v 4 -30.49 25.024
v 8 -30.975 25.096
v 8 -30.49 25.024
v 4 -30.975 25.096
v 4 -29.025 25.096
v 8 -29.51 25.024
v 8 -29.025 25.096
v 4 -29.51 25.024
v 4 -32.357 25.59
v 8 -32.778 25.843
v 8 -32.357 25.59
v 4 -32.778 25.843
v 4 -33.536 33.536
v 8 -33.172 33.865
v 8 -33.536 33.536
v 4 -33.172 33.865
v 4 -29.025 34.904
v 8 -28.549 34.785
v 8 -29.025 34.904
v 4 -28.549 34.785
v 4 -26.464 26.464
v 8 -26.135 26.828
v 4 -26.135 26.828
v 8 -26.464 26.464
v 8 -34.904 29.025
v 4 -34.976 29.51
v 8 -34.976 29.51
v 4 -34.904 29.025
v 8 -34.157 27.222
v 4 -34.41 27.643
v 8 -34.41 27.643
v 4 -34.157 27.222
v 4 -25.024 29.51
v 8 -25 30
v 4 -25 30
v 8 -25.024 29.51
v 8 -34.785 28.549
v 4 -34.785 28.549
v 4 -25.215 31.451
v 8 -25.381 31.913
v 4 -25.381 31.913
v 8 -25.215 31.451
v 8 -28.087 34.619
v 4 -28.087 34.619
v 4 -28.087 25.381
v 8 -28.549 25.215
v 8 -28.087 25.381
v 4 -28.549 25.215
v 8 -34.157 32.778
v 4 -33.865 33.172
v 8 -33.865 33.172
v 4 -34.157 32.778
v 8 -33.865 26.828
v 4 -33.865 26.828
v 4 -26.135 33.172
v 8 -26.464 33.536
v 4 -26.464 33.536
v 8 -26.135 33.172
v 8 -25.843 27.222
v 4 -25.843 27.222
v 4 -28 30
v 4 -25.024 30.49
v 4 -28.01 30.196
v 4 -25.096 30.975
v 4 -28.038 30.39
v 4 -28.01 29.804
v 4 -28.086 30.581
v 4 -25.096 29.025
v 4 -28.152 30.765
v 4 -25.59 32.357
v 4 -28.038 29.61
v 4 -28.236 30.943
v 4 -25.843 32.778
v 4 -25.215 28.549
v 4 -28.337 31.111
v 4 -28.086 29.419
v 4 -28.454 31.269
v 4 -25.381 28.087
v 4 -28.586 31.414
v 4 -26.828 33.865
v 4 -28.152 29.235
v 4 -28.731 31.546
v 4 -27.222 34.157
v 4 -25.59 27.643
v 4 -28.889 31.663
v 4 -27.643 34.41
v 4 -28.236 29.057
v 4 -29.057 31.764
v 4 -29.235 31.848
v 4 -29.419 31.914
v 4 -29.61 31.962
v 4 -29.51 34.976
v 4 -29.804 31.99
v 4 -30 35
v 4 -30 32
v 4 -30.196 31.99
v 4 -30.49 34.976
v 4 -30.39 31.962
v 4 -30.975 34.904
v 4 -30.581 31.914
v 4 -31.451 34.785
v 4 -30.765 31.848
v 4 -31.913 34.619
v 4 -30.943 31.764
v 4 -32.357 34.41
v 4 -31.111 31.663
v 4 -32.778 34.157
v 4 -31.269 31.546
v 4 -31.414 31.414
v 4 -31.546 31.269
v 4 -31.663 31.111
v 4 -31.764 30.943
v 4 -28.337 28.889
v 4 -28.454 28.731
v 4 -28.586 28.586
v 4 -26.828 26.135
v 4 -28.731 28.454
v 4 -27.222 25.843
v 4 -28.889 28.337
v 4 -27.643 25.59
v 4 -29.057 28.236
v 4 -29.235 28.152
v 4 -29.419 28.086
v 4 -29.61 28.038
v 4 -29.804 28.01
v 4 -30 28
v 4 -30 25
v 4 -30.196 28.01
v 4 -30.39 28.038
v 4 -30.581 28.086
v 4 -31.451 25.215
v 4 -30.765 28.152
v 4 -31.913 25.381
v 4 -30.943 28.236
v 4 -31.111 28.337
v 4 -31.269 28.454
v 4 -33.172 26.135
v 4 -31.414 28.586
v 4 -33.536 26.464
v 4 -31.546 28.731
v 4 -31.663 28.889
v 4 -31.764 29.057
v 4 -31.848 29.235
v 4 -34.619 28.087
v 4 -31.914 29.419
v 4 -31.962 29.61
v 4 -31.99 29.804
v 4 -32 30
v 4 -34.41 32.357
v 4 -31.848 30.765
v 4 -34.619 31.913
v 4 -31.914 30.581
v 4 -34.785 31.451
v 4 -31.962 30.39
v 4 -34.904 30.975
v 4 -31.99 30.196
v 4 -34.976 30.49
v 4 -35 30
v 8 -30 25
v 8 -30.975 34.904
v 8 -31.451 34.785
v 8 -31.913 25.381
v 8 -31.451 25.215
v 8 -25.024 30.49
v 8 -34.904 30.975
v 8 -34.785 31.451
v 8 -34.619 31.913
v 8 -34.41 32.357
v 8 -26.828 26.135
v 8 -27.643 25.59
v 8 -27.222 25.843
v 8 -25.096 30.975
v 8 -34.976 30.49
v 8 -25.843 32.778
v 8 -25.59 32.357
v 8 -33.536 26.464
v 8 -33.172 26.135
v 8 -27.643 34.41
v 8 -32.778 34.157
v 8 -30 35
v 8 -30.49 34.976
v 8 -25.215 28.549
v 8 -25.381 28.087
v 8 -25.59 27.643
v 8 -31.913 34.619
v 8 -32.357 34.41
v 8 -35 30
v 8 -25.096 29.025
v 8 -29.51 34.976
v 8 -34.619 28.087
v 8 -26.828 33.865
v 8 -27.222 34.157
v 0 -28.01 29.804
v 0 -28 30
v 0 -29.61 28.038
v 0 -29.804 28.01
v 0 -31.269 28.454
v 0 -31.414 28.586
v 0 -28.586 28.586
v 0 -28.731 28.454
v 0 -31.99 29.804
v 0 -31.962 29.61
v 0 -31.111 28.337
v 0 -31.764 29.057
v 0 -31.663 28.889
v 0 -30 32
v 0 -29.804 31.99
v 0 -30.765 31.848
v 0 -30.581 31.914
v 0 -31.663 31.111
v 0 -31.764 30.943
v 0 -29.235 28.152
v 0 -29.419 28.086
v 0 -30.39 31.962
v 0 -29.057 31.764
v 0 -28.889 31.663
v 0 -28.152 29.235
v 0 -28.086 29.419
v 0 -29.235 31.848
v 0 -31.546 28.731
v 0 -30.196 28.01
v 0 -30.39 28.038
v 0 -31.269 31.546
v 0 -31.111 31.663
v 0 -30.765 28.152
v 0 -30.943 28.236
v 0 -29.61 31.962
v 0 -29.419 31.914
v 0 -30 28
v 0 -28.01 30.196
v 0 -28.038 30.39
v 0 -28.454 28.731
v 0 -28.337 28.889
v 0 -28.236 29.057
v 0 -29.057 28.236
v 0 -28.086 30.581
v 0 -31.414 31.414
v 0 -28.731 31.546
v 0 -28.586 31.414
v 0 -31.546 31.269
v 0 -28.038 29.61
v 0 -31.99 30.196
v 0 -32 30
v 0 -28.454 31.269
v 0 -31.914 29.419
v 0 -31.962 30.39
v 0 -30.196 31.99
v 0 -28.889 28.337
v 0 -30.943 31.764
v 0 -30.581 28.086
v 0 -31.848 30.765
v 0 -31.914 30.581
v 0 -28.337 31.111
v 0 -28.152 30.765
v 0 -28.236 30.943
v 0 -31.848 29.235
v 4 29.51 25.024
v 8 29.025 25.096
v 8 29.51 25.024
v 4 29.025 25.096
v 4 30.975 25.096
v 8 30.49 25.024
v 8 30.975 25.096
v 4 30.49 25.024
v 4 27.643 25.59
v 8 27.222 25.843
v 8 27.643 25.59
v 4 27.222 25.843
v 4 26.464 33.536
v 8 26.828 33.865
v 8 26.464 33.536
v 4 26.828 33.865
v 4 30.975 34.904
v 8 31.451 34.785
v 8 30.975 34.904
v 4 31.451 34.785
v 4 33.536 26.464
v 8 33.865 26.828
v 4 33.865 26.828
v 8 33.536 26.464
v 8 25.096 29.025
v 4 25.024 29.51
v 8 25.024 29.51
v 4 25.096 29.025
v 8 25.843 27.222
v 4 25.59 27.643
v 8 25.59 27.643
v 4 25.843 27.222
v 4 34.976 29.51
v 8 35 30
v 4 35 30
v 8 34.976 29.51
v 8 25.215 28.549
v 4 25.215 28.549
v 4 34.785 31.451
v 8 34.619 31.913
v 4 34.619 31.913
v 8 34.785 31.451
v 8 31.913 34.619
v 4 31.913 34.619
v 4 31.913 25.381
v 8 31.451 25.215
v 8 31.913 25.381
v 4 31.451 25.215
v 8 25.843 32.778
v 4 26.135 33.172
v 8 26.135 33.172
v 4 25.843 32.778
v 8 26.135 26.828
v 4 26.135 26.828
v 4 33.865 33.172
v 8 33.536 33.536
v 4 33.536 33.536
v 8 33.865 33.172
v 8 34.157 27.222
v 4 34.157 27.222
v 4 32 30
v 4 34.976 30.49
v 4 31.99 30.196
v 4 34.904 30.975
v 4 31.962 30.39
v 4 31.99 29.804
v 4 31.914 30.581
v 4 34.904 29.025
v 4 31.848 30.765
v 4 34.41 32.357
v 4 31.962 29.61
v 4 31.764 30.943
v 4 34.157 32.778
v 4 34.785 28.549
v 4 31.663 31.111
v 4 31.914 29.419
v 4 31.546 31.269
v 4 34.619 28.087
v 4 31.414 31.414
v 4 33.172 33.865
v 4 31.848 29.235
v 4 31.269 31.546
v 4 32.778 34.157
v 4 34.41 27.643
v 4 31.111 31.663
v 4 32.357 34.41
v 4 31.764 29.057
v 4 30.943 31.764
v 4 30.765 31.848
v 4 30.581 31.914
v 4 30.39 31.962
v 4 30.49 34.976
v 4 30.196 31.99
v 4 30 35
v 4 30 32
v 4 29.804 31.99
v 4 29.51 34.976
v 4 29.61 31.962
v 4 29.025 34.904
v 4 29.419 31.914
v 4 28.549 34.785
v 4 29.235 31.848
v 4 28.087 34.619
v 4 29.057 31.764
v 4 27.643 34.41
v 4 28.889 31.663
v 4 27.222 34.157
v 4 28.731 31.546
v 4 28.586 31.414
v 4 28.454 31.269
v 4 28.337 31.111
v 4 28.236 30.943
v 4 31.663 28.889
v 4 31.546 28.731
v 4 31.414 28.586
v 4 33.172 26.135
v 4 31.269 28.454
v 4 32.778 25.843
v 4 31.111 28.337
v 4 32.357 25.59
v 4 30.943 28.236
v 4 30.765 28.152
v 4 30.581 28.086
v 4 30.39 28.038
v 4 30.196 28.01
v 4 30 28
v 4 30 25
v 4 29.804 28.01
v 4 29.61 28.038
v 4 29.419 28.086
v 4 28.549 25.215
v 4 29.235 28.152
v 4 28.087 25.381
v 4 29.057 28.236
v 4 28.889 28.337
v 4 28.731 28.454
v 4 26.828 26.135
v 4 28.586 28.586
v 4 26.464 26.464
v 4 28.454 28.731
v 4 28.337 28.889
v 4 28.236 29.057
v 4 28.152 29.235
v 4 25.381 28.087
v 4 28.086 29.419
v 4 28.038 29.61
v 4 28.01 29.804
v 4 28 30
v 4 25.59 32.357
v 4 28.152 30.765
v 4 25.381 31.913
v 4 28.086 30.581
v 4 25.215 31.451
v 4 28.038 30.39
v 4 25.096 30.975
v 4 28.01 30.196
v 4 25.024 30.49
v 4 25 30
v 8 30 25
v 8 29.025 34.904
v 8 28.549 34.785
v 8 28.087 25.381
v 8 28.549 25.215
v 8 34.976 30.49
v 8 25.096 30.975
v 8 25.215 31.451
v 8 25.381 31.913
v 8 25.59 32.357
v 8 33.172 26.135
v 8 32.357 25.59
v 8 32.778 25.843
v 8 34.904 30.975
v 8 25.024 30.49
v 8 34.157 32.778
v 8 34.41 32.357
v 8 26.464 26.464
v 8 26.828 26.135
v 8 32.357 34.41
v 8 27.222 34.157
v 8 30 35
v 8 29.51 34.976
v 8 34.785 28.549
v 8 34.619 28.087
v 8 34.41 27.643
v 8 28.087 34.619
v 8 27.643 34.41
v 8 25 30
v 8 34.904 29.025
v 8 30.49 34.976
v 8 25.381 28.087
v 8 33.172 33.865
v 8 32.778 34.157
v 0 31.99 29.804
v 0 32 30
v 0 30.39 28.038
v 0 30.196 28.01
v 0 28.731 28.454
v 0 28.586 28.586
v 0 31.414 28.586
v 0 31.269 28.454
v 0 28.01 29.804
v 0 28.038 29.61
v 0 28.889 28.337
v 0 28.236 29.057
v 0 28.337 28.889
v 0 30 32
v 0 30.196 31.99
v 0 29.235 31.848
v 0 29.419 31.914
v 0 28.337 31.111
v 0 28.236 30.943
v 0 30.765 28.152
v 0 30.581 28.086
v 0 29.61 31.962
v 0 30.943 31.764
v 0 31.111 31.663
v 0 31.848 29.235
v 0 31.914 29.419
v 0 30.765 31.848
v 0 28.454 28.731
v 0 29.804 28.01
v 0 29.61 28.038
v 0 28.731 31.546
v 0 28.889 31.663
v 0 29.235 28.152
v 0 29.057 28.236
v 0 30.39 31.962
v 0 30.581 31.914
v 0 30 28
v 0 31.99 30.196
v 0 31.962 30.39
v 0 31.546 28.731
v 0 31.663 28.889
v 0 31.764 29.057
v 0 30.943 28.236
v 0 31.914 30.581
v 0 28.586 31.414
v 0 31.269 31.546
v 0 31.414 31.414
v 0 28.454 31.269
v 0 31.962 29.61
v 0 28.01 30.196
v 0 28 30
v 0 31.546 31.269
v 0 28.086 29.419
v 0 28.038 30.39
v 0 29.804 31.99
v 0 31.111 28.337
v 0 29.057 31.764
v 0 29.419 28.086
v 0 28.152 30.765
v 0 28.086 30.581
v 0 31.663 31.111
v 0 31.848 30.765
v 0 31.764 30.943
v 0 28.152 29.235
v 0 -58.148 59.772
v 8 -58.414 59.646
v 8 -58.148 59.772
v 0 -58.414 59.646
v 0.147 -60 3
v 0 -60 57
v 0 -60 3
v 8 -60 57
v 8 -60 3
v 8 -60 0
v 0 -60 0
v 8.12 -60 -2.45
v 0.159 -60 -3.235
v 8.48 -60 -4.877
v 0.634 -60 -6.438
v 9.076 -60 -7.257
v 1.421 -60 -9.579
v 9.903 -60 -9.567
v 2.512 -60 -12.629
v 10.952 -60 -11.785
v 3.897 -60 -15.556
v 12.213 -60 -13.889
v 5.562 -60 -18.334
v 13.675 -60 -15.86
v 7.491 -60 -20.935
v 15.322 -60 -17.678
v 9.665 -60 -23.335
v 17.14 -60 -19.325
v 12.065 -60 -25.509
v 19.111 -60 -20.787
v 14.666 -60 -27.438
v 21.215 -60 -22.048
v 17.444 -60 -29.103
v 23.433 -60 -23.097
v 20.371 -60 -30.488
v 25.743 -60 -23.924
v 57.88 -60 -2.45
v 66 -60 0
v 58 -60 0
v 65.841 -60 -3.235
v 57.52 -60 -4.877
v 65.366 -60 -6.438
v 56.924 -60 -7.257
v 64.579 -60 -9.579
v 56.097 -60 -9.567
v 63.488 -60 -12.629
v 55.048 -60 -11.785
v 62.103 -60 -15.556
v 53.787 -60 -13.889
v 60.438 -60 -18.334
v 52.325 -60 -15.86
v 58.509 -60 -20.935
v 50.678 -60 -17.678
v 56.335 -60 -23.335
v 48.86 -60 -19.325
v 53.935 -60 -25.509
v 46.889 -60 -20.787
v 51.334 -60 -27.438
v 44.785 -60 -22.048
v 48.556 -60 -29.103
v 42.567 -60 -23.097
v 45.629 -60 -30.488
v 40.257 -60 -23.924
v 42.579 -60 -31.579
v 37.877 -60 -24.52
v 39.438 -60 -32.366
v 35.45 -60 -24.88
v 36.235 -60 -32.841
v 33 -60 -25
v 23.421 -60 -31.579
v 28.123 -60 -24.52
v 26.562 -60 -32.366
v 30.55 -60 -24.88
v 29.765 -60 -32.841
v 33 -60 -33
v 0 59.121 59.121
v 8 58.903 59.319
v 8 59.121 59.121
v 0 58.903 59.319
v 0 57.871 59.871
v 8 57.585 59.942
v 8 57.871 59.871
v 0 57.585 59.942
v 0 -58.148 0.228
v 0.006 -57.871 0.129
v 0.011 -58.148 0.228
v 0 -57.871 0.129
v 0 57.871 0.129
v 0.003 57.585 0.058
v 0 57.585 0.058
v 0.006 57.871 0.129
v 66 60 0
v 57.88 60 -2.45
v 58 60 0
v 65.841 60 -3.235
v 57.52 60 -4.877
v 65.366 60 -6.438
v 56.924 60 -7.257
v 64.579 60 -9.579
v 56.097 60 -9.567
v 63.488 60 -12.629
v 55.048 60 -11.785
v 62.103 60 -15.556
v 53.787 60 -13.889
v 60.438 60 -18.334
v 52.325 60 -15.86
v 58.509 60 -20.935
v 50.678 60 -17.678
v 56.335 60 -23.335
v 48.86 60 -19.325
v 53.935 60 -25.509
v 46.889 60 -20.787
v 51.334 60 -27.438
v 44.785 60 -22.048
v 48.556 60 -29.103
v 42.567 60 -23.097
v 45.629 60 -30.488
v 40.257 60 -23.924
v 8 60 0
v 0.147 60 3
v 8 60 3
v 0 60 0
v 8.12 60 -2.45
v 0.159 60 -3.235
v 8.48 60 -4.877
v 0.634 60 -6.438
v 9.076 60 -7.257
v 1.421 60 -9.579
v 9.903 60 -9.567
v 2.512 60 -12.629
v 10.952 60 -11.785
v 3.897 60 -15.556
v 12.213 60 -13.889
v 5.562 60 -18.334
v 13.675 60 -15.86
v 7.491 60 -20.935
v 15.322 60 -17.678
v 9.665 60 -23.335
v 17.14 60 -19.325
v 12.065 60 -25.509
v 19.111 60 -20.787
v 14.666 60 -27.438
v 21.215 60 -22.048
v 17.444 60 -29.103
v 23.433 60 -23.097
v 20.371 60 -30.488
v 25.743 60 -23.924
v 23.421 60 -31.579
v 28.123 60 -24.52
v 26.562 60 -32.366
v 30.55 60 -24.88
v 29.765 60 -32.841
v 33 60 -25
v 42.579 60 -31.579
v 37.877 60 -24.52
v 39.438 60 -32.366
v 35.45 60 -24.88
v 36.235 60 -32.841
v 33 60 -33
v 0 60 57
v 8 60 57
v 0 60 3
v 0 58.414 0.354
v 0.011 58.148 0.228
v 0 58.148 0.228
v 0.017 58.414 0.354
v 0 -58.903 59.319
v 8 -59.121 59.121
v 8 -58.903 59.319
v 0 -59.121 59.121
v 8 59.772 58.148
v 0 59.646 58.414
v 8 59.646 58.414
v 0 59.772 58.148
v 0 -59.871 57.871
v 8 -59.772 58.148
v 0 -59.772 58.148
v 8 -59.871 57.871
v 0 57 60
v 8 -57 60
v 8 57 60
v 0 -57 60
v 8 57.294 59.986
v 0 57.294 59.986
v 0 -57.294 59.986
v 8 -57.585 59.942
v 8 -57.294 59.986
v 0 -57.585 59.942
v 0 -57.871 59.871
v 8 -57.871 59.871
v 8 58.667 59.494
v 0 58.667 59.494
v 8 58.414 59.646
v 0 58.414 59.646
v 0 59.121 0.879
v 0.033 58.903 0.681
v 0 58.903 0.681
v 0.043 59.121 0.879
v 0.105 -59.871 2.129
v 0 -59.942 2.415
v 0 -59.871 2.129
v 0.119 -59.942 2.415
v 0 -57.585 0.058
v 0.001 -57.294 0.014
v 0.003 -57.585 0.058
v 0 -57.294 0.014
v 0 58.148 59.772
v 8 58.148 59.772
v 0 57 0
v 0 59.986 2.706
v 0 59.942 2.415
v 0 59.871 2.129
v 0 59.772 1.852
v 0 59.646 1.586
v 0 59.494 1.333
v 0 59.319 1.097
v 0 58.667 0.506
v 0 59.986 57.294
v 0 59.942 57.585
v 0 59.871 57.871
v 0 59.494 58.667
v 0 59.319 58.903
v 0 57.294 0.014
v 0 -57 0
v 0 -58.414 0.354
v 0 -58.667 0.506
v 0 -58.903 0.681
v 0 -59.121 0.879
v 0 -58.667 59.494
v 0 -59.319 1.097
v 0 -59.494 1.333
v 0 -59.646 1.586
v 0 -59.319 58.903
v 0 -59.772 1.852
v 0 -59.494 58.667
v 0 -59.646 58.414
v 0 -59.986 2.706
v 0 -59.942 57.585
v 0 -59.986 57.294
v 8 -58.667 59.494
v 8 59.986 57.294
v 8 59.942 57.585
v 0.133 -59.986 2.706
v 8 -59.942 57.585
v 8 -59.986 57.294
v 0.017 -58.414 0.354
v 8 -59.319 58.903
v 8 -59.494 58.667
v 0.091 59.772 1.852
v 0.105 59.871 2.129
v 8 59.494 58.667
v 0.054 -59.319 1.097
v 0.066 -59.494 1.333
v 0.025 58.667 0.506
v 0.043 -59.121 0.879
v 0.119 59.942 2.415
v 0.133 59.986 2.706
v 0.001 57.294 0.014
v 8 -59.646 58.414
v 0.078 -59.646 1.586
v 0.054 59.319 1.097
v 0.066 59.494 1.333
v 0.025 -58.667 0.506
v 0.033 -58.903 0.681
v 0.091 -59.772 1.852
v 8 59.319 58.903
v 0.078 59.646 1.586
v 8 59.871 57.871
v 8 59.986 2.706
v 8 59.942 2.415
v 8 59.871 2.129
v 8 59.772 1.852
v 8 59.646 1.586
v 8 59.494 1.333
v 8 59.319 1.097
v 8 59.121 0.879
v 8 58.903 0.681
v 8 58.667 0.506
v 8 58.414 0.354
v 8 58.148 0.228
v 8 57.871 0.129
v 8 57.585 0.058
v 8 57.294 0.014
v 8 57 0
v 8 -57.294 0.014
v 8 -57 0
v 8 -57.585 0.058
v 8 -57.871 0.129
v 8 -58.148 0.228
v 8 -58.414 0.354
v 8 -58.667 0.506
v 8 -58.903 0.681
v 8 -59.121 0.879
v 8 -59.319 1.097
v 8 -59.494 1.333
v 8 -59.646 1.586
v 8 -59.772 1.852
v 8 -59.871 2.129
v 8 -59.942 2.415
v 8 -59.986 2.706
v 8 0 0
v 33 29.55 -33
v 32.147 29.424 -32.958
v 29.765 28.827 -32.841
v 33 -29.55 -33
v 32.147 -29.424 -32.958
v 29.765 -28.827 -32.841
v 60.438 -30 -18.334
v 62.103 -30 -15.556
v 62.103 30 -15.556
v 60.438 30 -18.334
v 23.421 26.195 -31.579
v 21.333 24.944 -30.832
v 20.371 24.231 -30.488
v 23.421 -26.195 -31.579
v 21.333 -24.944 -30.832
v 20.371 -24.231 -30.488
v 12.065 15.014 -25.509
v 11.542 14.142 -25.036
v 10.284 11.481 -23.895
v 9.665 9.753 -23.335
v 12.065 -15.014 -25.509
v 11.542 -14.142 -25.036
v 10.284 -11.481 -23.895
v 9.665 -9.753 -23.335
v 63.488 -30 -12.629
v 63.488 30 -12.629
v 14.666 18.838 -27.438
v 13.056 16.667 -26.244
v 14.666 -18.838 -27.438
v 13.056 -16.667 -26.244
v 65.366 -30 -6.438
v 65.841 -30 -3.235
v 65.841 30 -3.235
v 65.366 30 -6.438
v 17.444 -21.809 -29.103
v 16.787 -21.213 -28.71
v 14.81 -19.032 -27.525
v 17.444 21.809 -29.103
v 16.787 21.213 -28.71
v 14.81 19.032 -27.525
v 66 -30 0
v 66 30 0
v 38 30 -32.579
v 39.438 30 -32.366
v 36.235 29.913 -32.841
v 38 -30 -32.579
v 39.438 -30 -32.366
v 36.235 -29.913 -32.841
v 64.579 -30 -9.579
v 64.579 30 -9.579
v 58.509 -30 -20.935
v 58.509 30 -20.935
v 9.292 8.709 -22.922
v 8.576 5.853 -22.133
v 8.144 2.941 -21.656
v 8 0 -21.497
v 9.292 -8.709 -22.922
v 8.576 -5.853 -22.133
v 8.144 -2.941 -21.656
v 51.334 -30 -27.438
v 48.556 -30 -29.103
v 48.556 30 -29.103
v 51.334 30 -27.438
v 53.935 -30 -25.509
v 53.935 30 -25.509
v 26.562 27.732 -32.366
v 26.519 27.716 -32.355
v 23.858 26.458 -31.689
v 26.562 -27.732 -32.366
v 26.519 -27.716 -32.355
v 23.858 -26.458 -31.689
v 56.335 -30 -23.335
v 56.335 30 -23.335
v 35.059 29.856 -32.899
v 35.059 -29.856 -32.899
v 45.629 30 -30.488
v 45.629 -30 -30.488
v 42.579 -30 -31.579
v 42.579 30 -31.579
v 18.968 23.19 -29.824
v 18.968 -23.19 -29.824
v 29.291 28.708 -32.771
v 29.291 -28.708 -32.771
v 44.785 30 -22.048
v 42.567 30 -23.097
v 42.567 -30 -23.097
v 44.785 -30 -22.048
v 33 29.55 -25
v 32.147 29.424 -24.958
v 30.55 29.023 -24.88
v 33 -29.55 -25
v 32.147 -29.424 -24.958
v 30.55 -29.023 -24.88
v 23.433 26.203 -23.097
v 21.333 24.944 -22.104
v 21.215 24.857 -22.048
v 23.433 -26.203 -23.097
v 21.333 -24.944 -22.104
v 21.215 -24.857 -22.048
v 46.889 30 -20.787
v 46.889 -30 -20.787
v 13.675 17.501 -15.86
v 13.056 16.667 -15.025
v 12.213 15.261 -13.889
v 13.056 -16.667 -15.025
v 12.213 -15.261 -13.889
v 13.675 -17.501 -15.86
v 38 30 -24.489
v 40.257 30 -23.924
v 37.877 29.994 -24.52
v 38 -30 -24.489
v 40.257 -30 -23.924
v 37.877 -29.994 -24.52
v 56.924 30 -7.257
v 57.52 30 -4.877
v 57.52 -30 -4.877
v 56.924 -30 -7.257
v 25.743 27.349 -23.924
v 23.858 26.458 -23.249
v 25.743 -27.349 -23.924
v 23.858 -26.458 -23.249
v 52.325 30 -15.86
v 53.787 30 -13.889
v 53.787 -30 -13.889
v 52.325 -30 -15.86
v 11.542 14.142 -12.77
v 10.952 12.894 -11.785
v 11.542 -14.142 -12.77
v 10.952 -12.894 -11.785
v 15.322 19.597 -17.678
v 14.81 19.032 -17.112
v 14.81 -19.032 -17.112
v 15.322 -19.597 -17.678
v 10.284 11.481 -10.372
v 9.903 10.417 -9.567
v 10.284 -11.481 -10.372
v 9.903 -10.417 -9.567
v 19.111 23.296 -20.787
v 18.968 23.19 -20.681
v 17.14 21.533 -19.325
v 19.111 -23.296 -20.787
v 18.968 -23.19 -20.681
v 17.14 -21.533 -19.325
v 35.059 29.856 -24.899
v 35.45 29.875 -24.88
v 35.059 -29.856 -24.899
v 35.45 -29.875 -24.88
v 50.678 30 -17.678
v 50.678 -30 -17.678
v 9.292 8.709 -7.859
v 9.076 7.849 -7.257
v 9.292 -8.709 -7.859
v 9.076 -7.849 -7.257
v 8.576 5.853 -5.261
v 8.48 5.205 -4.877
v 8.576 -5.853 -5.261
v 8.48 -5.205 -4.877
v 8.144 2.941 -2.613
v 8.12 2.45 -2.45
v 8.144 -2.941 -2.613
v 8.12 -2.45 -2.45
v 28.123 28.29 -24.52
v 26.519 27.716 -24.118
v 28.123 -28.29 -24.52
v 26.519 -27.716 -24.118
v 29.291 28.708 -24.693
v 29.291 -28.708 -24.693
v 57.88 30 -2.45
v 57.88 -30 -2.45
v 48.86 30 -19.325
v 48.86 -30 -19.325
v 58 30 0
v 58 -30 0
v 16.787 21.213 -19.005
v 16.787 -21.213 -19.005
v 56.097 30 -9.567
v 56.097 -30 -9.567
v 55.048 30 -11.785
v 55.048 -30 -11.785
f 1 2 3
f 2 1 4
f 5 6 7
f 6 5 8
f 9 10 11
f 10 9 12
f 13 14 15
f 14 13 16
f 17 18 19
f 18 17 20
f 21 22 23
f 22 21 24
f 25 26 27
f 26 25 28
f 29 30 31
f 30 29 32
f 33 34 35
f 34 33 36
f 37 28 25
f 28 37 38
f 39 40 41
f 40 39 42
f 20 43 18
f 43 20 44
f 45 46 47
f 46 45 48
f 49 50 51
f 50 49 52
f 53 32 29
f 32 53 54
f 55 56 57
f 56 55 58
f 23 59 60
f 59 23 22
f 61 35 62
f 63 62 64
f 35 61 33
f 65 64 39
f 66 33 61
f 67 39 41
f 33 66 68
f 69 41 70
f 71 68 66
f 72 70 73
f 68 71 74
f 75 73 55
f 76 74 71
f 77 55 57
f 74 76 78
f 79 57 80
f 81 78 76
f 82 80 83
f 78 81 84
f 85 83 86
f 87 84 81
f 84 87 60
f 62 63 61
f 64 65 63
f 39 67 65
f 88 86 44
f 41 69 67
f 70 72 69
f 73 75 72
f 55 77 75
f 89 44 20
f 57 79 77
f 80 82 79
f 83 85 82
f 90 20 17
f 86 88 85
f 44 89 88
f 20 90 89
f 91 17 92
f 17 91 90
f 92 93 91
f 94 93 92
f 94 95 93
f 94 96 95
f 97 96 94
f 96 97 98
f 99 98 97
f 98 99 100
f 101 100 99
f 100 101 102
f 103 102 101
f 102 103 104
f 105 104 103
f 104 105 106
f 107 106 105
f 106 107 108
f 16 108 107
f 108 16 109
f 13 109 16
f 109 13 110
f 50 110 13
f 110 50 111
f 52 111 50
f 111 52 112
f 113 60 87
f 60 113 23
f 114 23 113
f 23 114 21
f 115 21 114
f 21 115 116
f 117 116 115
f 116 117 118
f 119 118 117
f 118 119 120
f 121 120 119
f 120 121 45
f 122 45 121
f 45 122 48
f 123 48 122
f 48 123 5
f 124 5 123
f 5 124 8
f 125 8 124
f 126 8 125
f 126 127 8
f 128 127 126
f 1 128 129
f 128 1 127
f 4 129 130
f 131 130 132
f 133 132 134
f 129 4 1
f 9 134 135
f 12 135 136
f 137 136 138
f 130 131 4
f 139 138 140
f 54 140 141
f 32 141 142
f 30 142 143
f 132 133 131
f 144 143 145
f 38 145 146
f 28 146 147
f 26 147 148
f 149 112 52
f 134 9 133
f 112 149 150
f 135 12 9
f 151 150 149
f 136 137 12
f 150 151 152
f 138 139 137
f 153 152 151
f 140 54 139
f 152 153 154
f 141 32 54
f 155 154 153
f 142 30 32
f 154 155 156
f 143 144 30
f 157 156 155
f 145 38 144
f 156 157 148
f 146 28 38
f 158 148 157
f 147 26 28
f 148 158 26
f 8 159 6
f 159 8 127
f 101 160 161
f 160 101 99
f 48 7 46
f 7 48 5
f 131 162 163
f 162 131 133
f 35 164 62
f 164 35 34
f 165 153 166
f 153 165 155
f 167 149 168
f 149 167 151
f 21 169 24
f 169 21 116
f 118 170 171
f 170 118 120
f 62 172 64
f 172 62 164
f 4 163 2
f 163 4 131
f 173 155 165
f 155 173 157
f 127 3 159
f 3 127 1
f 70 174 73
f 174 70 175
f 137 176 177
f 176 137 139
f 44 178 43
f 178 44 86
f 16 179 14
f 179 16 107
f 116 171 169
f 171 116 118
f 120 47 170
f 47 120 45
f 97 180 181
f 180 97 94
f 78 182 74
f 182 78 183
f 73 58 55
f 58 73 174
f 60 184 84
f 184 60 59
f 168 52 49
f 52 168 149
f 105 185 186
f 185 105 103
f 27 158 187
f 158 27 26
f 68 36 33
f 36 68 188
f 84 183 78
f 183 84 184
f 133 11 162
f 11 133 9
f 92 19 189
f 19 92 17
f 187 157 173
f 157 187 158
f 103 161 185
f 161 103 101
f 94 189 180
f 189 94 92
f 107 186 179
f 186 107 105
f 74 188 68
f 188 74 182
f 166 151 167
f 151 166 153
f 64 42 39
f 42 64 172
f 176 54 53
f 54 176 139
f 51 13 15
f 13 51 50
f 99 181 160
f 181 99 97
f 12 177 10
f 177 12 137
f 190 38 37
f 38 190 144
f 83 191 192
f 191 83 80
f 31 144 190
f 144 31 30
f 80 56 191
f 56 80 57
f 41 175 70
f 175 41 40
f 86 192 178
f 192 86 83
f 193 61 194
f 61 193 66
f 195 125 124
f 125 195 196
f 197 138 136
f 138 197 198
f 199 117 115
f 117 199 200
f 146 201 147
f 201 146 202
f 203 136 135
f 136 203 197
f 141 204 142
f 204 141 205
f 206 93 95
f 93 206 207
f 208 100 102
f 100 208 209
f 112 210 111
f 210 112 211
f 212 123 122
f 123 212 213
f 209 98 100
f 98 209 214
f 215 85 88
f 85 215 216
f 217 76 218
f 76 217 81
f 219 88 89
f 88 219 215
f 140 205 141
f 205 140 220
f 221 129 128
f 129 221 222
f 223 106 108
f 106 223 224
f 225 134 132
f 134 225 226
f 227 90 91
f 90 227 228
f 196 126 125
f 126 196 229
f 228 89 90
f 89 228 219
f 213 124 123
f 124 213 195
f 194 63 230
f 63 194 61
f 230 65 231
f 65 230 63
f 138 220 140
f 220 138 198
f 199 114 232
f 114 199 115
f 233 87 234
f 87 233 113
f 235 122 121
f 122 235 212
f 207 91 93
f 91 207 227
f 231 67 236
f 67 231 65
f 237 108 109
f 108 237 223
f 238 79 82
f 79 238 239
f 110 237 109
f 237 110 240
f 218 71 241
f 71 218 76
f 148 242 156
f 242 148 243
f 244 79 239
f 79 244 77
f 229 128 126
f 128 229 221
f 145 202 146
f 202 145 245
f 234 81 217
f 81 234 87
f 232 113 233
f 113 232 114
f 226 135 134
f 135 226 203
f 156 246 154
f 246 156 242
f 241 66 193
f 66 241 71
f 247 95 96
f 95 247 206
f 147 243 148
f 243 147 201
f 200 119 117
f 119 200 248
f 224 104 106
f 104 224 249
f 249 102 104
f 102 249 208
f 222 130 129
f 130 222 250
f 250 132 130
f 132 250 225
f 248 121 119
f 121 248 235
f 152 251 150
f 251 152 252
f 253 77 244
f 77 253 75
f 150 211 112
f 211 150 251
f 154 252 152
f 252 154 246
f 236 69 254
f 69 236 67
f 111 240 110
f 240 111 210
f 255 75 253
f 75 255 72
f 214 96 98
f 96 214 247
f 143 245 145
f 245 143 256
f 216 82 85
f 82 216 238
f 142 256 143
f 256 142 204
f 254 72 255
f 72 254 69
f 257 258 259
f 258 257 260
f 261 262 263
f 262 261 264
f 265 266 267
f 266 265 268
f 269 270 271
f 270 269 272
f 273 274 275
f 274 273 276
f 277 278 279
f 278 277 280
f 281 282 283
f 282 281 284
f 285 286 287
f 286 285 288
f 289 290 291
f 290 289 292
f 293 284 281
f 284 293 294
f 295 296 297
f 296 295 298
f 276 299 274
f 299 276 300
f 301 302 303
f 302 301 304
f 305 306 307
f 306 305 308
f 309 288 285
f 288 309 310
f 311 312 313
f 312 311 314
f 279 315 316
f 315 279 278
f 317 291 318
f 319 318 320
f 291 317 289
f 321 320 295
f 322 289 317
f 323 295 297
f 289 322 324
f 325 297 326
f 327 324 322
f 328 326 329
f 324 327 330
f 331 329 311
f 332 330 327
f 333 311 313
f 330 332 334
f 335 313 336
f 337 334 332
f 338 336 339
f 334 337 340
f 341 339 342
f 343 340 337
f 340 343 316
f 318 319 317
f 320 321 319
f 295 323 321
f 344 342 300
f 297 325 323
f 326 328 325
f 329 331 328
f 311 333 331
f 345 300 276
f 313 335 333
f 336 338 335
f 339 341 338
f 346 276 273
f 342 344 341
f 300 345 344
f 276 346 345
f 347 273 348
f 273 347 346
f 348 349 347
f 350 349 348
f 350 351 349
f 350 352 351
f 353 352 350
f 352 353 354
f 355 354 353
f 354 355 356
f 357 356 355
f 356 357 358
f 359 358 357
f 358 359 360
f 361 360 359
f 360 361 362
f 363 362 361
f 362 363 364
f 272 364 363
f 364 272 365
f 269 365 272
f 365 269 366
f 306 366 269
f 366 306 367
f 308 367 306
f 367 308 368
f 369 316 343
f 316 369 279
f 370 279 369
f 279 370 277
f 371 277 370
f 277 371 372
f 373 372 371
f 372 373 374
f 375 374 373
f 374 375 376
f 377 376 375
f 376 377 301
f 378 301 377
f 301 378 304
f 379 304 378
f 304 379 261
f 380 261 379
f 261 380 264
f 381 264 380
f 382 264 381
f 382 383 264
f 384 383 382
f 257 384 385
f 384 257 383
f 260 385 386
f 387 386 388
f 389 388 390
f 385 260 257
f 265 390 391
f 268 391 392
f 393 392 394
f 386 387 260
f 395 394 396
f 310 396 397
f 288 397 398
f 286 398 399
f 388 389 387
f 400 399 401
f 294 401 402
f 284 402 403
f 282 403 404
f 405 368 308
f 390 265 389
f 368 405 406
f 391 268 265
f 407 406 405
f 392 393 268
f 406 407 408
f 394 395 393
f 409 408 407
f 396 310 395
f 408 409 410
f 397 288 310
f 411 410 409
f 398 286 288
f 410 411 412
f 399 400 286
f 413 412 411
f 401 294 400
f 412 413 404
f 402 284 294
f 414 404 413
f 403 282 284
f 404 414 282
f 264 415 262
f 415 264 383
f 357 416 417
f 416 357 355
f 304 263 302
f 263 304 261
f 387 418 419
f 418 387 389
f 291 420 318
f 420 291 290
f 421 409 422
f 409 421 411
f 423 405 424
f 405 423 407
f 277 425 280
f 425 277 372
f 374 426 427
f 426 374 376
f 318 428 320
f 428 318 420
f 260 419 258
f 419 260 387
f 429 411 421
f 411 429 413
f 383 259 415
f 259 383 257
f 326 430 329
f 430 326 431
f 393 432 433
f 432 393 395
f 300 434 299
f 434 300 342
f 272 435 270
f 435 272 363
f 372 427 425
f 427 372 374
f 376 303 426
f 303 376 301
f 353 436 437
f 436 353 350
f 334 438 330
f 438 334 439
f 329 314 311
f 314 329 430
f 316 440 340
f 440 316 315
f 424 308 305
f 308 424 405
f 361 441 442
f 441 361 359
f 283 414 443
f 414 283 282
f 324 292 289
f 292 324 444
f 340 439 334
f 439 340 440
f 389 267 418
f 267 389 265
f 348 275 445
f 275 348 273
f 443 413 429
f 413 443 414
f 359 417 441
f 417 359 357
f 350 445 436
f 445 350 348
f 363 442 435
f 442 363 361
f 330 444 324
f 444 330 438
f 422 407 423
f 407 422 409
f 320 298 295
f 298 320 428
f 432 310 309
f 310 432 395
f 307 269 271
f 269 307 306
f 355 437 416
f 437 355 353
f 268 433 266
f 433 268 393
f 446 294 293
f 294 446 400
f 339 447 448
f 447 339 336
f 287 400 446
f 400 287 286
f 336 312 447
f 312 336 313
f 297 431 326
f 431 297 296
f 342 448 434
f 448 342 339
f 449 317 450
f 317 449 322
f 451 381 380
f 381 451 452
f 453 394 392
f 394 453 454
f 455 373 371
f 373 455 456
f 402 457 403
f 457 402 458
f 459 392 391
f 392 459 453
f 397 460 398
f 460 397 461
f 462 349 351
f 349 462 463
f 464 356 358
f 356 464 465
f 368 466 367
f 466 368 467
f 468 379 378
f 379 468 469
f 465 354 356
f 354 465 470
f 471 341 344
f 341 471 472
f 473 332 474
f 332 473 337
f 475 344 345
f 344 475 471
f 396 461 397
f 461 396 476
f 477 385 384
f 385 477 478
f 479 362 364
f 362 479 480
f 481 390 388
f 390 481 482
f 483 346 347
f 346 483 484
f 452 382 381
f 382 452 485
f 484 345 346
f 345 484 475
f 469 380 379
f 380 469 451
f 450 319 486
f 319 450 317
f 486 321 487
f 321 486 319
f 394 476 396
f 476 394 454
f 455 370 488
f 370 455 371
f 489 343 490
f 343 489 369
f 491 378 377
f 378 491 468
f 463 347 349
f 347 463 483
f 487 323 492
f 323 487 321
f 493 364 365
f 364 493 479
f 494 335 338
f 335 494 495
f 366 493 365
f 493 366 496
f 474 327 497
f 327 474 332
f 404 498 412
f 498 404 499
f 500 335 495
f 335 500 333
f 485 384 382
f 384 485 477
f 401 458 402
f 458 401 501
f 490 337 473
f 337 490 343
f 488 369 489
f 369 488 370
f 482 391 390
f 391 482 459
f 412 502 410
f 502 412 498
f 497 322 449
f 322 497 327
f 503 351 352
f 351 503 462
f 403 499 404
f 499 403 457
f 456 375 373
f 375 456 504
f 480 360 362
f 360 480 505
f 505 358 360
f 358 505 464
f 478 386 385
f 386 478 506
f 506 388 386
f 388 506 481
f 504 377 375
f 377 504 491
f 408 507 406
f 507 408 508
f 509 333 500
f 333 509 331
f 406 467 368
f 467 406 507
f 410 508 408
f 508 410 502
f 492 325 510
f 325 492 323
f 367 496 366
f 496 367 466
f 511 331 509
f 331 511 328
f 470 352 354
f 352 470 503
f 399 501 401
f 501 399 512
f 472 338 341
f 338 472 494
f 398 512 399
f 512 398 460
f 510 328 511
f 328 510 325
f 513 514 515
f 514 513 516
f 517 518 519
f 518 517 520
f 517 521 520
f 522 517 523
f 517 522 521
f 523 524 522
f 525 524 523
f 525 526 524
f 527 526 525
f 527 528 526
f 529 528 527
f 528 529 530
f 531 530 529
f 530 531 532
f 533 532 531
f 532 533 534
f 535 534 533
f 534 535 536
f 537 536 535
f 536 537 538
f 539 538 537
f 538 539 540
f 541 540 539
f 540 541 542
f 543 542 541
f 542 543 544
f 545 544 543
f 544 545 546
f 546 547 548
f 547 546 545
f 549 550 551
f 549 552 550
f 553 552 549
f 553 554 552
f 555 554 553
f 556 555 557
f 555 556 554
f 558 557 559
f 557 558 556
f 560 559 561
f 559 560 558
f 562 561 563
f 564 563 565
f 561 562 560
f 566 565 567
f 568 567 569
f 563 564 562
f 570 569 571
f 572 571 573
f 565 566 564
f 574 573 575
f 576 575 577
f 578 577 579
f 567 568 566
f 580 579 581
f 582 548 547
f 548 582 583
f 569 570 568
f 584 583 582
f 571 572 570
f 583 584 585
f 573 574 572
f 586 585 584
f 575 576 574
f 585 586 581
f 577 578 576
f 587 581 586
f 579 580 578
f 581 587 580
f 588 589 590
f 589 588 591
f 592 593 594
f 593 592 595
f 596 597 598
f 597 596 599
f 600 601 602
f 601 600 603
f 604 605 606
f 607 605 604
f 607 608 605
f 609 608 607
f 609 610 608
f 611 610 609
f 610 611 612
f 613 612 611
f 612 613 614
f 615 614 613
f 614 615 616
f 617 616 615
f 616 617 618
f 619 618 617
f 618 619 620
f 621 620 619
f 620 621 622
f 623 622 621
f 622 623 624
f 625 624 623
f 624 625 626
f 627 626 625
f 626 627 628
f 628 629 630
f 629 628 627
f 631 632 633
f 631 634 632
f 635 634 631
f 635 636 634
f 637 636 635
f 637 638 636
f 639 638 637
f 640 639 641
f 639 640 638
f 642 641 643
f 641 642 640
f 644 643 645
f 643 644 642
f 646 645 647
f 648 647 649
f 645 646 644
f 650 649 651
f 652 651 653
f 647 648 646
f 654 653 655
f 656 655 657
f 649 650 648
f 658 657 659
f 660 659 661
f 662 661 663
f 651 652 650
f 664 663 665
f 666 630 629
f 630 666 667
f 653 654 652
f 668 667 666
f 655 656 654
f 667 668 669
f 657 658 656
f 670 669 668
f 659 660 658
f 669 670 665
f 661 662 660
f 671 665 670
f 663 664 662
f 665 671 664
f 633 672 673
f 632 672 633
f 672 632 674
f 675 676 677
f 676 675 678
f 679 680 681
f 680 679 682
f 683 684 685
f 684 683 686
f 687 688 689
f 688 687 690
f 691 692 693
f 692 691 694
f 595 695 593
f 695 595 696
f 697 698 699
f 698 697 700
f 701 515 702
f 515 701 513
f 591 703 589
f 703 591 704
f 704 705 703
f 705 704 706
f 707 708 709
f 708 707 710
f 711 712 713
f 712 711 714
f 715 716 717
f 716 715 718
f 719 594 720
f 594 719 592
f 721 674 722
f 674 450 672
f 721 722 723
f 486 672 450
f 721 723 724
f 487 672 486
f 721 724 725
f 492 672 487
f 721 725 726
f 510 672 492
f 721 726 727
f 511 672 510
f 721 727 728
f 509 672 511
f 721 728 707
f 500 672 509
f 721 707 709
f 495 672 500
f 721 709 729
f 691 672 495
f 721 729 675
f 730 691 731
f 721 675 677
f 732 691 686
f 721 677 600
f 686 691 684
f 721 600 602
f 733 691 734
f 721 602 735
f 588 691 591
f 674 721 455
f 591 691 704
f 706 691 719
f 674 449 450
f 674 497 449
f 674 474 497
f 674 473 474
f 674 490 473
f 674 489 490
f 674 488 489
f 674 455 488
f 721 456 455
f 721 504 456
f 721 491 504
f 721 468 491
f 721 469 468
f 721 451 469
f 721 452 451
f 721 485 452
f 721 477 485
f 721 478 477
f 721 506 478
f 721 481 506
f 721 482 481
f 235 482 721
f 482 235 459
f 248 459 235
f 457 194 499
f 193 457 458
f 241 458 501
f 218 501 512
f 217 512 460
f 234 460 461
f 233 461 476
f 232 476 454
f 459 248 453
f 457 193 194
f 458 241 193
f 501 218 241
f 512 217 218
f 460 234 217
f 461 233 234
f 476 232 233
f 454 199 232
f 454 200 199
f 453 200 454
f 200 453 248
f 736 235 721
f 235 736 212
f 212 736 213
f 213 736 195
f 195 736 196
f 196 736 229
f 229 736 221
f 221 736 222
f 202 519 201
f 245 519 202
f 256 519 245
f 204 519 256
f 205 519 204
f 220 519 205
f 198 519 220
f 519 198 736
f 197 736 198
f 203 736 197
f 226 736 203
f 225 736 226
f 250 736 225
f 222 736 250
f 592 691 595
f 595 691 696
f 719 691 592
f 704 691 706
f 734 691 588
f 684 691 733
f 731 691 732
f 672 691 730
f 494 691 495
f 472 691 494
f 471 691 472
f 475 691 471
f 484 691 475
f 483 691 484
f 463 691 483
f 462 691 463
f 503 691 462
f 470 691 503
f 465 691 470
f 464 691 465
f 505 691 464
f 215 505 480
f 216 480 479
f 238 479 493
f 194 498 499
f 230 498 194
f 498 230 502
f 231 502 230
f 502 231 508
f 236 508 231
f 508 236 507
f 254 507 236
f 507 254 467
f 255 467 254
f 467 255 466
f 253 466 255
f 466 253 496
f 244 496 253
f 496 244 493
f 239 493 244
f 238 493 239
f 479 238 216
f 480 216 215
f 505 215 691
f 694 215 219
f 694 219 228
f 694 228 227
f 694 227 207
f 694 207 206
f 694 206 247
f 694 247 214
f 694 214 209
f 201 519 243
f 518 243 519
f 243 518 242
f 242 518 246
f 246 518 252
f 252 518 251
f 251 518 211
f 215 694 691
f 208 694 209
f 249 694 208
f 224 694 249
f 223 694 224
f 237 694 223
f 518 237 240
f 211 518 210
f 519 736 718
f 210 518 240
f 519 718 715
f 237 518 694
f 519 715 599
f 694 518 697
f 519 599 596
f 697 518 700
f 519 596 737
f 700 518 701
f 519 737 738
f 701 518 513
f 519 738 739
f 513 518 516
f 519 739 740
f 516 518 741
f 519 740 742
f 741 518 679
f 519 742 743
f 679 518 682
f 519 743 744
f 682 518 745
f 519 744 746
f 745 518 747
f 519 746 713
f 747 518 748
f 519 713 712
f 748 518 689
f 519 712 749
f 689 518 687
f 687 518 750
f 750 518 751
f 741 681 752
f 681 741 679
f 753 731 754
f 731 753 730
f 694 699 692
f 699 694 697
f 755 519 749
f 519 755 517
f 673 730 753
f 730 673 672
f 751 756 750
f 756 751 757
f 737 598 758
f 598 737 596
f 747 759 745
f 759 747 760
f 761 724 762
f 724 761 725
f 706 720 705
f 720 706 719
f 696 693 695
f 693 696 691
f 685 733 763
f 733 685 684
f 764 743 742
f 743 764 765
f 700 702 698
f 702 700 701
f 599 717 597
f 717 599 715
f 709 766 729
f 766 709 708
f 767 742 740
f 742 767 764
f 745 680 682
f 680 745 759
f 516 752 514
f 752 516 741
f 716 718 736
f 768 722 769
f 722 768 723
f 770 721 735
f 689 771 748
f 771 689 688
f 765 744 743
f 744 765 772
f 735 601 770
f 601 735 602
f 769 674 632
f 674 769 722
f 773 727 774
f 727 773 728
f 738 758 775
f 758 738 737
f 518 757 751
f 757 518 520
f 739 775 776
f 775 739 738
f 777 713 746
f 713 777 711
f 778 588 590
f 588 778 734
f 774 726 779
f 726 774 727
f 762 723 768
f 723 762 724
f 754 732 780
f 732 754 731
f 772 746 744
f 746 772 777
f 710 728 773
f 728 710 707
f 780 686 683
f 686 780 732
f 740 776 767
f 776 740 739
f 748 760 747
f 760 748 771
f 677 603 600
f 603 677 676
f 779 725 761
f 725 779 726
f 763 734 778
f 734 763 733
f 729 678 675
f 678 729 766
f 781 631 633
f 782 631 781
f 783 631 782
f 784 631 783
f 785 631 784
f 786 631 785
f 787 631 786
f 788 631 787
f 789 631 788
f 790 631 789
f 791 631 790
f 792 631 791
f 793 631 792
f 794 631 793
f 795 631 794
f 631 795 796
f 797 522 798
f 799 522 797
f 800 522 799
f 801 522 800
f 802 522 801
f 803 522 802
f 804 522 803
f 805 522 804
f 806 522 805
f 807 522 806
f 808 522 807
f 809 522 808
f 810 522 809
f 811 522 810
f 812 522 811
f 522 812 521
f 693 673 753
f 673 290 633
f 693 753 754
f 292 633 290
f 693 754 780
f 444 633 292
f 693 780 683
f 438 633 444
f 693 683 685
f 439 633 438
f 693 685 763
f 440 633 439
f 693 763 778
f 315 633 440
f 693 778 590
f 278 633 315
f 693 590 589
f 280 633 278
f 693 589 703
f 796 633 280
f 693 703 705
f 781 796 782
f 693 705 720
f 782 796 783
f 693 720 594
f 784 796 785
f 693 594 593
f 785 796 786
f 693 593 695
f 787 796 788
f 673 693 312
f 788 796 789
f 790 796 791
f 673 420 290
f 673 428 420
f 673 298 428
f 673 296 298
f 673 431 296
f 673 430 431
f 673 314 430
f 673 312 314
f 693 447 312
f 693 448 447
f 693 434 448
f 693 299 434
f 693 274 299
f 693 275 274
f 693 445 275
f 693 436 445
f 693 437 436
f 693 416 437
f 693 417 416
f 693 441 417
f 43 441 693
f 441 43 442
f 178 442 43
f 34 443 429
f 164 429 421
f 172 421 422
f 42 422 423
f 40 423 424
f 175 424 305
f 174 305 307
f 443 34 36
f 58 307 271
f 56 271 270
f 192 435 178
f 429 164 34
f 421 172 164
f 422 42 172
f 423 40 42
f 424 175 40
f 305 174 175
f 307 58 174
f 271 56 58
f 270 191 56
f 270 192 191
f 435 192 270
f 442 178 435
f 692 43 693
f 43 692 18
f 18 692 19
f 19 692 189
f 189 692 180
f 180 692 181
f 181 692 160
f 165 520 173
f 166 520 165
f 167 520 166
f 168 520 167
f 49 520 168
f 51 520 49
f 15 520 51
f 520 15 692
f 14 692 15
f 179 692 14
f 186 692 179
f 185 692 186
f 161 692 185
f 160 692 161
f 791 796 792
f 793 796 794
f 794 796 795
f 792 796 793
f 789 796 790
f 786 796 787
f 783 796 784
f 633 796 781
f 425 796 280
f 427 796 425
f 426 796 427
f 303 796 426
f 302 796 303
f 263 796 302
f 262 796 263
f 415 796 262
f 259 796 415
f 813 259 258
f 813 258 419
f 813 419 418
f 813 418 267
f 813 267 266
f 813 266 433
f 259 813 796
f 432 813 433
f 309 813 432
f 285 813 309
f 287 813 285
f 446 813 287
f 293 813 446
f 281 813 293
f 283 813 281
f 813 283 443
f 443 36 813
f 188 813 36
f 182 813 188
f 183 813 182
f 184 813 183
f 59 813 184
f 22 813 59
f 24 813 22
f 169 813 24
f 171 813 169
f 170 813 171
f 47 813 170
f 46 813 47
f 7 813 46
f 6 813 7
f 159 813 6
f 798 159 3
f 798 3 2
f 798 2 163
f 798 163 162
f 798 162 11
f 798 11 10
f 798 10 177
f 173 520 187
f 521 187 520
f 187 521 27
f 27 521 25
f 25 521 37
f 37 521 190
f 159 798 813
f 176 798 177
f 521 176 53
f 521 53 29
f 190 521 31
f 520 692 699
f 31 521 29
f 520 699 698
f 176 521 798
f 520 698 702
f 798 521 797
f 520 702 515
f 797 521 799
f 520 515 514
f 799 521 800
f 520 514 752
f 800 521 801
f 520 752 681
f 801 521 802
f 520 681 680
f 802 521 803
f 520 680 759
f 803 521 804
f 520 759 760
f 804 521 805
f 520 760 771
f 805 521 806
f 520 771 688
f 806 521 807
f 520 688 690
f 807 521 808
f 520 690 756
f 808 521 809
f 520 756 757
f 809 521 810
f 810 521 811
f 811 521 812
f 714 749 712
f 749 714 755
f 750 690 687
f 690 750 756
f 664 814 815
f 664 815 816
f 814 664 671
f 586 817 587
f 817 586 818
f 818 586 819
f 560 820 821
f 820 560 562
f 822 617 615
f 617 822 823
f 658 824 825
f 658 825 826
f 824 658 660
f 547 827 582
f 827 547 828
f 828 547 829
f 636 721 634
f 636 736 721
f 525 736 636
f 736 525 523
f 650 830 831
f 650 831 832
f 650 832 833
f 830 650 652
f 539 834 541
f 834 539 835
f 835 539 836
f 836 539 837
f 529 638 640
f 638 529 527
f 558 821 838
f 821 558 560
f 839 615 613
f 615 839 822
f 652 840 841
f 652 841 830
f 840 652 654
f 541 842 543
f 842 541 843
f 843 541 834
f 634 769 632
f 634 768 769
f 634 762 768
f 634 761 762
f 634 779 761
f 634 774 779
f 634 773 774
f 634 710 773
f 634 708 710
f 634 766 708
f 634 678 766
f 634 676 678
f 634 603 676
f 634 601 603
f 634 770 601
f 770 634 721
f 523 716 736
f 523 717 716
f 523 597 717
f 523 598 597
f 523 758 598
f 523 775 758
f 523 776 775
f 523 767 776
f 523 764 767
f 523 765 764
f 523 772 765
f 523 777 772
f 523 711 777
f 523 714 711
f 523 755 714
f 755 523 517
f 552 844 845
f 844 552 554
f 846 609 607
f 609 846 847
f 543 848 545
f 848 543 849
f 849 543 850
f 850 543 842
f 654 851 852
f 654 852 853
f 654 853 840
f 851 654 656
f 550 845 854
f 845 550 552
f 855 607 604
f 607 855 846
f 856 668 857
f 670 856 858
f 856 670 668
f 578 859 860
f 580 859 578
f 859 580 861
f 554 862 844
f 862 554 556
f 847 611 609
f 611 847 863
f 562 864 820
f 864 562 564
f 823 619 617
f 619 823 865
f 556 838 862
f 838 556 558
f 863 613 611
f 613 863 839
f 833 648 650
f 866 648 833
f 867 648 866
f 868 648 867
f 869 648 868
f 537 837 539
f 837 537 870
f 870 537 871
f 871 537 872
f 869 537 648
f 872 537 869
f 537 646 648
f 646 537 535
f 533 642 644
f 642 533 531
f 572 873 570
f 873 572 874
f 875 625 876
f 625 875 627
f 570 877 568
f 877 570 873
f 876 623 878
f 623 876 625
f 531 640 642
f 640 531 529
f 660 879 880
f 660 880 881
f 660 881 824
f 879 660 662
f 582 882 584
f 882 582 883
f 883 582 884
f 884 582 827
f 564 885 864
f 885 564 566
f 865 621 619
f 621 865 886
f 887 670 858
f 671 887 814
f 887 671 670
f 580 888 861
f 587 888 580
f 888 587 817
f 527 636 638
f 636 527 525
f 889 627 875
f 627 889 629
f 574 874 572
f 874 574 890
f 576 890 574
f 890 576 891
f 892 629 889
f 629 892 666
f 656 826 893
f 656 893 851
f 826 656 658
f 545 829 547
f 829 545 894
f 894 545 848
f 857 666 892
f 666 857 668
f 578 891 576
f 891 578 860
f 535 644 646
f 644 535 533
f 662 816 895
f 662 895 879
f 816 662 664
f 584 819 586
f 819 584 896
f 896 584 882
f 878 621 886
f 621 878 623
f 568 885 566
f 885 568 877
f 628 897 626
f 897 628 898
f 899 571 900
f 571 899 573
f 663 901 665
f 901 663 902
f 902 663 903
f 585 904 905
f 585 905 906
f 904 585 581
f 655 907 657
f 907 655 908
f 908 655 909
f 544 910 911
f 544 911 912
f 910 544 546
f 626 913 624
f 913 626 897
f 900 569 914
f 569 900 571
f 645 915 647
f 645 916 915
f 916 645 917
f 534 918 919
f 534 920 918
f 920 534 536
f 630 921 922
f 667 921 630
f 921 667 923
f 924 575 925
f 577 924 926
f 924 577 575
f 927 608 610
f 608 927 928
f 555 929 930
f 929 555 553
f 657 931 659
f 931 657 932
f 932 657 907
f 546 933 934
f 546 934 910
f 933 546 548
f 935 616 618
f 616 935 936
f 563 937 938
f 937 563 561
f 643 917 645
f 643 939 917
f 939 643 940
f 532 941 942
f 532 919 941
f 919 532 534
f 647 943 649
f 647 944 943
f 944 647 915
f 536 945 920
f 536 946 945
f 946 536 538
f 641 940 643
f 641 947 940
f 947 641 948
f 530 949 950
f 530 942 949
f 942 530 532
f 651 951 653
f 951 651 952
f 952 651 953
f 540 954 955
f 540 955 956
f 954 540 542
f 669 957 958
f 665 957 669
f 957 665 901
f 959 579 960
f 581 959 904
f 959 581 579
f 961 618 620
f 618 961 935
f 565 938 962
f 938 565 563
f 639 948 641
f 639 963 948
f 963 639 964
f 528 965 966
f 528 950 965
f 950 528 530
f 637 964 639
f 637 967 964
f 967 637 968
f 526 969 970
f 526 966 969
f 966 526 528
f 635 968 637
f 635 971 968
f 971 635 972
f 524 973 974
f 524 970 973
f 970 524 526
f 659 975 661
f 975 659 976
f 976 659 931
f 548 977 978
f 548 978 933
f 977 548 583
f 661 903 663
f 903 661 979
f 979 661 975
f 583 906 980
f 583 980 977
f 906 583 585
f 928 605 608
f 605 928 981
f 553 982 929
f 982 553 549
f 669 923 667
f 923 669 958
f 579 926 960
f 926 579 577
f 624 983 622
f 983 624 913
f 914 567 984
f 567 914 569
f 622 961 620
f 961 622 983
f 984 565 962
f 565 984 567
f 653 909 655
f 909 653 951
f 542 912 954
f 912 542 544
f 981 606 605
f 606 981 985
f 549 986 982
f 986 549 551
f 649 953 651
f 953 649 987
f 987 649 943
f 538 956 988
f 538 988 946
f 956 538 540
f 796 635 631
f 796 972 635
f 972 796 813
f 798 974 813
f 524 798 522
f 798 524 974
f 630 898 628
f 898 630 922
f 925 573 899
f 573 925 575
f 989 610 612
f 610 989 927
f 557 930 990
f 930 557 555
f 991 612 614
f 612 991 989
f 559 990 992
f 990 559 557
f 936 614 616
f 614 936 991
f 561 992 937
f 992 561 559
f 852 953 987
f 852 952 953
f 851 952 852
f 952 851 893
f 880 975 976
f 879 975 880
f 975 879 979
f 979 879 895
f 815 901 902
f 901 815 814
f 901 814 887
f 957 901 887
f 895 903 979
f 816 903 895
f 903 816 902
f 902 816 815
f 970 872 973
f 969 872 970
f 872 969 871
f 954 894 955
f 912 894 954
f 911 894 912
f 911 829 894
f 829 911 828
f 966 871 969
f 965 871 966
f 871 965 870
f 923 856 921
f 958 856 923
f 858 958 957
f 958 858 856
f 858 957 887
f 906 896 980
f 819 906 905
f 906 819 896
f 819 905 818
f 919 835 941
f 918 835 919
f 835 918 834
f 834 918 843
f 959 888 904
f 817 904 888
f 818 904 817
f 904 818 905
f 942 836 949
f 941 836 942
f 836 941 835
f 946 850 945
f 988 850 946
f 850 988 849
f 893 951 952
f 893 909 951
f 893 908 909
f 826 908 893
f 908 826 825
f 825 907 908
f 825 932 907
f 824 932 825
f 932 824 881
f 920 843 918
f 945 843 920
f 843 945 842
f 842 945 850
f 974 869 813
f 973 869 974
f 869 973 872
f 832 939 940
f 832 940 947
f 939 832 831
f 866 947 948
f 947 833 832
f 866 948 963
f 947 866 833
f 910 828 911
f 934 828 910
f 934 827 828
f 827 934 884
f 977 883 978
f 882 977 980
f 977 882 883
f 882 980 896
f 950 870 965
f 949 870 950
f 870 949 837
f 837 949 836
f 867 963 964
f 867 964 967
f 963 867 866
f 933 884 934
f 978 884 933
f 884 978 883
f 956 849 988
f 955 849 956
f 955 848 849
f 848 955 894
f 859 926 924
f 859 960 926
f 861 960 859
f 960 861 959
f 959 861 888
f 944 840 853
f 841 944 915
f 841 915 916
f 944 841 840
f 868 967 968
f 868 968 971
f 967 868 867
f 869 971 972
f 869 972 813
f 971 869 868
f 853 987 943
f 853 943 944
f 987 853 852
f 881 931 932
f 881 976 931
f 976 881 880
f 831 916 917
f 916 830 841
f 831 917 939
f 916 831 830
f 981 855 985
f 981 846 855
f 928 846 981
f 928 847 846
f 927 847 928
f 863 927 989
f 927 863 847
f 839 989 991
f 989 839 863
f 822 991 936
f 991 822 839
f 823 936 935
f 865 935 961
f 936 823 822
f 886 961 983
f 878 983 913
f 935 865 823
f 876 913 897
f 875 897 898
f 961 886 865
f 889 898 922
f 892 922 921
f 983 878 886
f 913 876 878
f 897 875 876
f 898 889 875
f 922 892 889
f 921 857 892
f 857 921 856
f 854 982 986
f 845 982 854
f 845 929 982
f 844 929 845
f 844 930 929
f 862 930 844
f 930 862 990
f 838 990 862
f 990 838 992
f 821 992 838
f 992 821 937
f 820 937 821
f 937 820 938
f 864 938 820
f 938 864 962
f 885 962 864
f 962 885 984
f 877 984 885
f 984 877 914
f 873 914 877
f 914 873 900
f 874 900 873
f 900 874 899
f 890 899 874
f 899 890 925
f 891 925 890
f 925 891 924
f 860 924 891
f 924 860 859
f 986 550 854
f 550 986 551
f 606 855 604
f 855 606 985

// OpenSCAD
// file: roundedcube.scad
// From https://gist.githubusercontent.com/groovenectar/92174cb1c98c1089347e/raw/c3024ba34f58831a2cf02952212d1ae236238de2/roundedcube.scad

// Higher definition curves
$fs = 0.01;

module roundedcube(size = [1, 1, 1], center = false, radius = 0.5, apply_to = "all") {
	// If single value, convert to [x, y, z] vector
	size = (size[0] == undef) ? [size, size, size] : size;

	translate_min = radius;
	translate_xmax = size[0] - radius;
	translate_ymax = size[1] - radius;
	translate_zmax = size[2] - radius;

	diameter = radius * 2;

	module build_point(type = "sphere", rotate = [0, 0, 0]) {
		if (type == "sphere") {
			sphere(r = radius);
		} else if (type == "cylinder") {
			rotate(a = rotate)
			cylinder(h = diameter, r = radius, center = true);
		}
	}

	obj_translate = (center == false) ?
		[0, 0, 0] : [
			-(size[0] / 2),
			-(size[1] / 2),
			-(size[2] / 2)
		];

	translate(v = obj_translate) {
		hull() {
			for (translate_x = [translate_min, translate_xmax]) {
				x_at = (translate_x == translate_min) ? "min" : "max";
				for (translate_y = [translate_min, translate_ymax]) {
					y_at = (translate_y == translate_min) ? "min" : "max";
					for (translate_z = [translate_min, translate_zmax]) {
						z_at = (translate_z == translate_min) ? "min" : "max";

						translate(v = [translate_x, translate_y, translate_z])
						if (
							(apply_to == "all") ||
							(apply_to == "xmin" && x_at == "min") || (apply_to == "xmax" && x_at == "max") ||
							(apply_to == "ymin" && y_at == "min") || (apply_to == "ymax" && y_at == "max") ||
							(apply_to == "zmin" && z_at == "min") || (apply_to == "zmax" && z_at == "max")
						) {
							build_point("sphere");
						} else {
							rotate = 
								(apply_to == "xmin" || apply_to == "xmax" || apply_to == "x") ? [0, 90, 0] : (
								(apply_to == "ymin" || apply_to == "ymax" || apply_to == "y") ? [90, 90, 0] :
								[0, 0, 0]
							);
							build_point("cylinder", rotate);
						}
					}
				}
			}
		}
	}
}
// main file
use <roundedcube.scad>

$fn = 64;
$fs = 0.1;

// Backplane
difference() {
  translate([0,-60,0])
    roundedcube([8,120,60], radius = 3, apply_to="x");
  translate([-1,-30,30])
    rotate([0,90,0])
      union() {
        translate([0,0,5])
          cylinder(h = 10, d = 10);
        cylinder(h = 10, d = 4);
      }
   translate([-1,30,30])
    rotate([0,90,0])
      union() {
        translate([0,0,5])
          cylinder(h = 10, d = 10);
        cylinder(h = 10, d = 4);
      }
}

// Attachment head opening
difference() {
  translate([33,60,0])
    rotate([90,0,0])
      difference() {
        cylinder(h = 120, d = 66);
        translate([0,0,-5])
          cylinder(h = 130, d = 50);
      }
  translate([8,-65,0])
    cube([70,130,40]);

  // Hose 60mm opening
  translate([38,0,-40])
    union() {
      cylinder(h = 100, d = 60);
      translate([0,-30,0])
        cube([40,60,100]);
    }
}
